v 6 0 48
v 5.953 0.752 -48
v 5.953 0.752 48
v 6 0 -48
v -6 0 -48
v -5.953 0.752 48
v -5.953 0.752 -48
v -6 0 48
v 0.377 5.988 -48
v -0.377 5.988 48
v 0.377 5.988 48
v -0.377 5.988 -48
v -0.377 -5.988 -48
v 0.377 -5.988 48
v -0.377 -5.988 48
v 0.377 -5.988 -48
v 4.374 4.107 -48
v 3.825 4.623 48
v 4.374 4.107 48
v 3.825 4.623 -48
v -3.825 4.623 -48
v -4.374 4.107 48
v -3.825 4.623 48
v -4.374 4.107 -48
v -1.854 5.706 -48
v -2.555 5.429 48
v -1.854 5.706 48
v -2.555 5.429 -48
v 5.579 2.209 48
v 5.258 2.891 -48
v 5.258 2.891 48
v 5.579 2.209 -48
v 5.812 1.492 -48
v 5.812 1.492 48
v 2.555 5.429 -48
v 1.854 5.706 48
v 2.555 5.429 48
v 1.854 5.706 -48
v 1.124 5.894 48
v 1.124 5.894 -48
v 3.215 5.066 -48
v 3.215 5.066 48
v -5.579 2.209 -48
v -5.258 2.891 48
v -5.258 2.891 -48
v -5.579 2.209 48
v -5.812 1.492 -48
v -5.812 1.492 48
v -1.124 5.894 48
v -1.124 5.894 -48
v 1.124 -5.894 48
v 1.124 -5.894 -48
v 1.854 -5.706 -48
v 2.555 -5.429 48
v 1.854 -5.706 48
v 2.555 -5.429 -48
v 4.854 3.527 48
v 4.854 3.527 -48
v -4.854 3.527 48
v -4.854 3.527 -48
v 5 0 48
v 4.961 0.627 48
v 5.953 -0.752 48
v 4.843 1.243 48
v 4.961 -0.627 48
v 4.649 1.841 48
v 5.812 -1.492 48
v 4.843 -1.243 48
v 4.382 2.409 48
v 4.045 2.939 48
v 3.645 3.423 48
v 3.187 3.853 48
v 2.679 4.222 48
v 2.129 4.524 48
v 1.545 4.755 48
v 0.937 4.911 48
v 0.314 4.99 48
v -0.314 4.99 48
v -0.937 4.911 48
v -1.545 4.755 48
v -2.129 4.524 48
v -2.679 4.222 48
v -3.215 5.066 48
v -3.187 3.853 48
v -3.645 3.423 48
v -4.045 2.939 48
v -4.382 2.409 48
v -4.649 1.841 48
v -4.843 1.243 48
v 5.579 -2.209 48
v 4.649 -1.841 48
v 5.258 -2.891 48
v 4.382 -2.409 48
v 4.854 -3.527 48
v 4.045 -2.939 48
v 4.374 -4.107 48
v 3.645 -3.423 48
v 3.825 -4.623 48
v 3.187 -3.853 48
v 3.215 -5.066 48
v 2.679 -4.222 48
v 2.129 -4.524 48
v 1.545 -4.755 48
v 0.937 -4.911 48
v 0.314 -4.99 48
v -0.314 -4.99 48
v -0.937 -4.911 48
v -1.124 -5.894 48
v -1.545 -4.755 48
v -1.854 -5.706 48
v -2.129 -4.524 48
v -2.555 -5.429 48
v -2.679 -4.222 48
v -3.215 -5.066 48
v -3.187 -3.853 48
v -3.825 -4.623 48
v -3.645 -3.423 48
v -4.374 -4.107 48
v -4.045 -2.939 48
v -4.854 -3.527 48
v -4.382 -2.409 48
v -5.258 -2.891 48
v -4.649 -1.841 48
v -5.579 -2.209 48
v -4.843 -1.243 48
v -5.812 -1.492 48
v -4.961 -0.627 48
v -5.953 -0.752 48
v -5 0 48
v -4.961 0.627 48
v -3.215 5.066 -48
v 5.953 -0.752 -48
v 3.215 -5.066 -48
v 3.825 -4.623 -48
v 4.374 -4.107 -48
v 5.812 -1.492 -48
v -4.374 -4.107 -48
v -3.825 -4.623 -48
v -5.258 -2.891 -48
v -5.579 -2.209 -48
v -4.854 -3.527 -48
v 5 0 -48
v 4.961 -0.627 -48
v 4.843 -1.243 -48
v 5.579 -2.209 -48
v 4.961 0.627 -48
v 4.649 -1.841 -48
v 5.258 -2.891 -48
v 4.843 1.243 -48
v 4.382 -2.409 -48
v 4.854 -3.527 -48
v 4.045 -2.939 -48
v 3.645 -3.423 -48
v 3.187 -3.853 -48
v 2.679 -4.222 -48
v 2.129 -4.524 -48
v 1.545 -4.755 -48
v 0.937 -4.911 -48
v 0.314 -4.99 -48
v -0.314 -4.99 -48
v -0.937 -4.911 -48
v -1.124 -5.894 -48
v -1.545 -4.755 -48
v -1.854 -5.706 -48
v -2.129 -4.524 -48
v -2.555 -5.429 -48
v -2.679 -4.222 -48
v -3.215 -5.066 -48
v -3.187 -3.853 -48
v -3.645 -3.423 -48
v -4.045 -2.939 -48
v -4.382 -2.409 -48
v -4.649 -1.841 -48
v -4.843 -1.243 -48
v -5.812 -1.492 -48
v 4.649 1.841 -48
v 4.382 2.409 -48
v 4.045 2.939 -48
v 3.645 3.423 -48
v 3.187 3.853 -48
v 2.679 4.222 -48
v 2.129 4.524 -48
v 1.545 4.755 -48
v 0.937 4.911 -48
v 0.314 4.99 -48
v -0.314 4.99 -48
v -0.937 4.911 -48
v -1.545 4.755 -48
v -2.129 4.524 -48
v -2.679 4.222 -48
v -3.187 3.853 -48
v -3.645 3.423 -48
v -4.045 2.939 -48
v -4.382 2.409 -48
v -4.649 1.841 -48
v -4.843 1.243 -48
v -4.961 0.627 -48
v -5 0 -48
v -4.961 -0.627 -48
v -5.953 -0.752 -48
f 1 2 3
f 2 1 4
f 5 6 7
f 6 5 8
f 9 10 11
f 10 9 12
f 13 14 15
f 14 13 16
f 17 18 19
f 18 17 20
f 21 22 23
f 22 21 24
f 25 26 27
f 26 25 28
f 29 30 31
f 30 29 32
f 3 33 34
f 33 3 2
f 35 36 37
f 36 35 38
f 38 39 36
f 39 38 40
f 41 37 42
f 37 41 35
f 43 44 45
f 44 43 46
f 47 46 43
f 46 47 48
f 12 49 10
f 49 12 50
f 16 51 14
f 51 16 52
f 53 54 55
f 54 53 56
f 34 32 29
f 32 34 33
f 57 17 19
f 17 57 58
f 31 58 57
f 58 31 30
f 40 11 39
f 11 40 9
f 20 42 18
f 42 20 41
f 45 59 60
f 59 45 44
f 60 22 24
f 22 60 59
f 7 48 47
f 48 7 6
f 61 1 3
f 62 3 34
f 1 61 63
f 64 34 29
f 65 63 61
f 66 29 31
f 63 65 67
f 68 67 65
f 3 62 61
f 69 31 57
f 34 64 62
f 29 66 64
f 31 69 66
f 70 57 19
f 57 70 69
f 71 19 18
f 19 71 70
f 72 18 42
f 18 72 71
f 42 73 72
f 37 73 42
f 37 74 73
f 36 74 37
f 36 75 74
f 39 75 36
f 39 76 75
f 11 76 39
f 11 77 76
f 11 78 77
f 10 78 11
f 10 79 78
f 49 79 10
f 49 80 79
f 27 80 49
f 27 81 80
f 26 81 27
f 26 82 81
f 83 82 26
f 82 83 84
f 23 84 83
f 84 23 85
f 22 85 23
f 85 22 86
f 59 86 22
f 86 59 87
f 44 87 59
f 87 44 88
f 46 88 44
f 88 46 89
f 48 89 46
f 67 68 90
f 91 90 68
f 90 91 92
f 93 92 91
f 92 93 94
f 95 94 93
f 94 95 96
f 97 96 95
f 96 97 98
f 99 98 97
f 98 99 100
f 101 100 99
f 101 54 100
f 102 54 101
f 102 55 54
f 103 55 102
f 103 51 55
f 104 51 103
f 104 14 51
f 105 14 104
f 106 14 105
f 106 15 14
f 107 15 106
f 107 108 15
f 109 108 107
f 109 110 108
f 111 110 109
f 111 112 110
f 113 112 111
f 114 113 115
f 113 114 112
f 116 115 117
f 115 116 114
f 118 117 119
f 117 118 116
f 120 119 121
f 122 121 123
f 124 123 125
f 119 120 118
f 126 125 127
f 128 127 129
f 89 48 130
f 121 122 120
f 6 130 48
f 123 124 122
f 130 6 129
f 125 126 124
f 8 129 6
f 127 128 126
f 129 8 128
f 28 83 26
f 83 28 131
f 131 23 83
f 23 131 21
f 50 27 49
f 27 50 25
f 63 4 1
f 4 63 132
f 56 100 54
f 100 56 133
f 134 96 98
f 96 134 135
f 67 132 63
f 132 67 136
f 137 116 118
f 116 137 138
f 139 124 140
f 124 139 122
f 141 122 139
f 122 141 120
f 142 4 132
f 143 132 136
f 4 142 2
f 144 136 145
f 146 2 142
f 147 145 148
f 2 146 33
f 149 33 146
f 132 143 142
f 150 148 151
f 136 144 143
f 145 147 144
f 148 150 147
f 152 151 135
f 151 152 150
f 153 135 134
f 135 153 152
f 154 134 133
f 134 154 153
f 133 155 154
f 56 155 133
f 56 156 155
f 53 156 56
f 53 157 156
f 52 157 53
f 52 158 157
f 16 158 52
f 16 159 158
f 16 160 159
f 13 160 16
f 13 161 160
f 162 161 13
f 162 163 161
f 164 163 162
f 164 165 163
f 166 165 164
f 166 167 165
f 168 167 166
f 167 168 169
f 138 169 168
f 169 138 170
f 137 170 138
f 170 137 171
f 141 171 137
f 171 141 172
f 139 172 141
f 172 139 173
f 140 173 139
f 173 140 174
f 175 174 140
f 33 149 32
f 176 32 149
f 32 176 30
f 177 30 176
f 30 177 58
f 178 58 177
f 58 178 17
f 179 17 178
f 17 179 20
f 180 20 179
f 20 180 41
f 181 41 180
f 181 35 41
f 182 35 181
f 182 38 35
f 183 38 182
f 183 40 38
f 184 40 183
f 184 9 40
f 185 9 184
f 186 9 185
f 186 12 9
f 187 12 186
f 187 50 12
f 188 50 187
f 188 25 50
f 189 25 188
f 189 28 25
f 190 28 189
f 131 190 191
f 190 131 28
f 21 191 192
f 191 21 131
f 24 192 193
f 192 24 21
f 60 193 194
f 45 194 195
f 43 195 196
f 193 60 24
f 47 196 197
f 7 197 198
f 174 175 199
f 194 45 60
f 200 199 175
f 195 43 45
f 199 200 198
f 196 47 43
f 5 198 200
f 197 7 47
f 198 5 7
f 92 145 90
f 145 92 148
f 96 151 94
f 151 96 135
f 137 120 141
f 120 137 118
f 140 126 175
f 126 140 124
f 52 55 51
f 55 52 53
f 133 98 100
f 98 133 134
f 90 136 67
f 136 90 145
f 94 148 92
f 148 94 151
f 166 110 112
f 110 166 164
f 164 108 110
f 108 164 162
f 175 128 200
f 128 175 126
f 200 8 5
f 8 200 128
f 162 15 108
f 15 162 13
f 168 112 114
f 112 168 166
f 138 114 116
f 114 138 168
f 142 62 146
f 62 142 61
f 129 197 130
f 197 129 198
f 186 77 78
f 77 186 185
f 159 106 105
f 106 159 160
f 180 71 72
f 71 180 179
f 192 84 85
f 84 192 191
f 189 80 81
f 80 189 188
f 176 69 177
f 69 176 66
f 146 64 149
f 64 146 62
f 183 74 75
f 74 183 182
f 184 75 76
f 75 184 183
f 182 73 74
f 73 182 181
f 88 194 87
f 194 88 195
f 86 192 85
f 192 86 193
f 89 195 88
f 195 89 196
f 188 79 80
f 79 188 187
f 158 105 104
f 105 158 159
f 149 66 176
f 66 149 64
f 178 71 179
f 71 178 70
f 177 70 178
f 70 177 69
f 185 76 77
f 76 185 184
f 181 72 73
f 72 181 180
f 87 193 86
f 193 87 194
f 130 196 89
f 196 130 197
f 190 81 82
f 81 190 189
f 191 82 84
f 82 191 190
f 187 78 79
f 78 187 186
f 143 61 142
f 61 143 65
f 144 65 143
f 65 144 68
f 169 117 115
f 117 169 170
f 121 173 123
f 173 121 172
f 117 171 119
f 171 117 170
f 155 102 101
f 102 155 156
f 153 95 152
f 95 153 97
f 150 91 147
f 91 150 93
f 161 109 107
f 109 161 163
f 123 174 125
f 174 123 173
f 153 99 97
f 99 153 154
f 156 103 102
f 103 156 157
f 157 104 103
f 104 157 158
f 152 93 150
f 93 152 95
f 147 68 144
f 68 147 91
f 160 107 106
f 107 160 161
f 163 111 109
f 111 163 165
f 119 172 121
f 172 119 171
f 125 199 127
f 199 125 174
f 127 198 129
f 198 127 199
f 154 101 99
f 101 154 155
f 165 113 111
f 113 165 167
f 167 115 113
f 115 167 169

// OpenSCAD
$fn = 50;


difference() {
	union() {
		translate(v = [0, 0, -48.0000000000]) {
			cylinder(h = 96, r = 6.0000000000);
		}
	}
	union() {
		translate(v = [0, 0, -100.0000000000]) {
			cylinder(h = 200, r = 5);
		}
	}
}
